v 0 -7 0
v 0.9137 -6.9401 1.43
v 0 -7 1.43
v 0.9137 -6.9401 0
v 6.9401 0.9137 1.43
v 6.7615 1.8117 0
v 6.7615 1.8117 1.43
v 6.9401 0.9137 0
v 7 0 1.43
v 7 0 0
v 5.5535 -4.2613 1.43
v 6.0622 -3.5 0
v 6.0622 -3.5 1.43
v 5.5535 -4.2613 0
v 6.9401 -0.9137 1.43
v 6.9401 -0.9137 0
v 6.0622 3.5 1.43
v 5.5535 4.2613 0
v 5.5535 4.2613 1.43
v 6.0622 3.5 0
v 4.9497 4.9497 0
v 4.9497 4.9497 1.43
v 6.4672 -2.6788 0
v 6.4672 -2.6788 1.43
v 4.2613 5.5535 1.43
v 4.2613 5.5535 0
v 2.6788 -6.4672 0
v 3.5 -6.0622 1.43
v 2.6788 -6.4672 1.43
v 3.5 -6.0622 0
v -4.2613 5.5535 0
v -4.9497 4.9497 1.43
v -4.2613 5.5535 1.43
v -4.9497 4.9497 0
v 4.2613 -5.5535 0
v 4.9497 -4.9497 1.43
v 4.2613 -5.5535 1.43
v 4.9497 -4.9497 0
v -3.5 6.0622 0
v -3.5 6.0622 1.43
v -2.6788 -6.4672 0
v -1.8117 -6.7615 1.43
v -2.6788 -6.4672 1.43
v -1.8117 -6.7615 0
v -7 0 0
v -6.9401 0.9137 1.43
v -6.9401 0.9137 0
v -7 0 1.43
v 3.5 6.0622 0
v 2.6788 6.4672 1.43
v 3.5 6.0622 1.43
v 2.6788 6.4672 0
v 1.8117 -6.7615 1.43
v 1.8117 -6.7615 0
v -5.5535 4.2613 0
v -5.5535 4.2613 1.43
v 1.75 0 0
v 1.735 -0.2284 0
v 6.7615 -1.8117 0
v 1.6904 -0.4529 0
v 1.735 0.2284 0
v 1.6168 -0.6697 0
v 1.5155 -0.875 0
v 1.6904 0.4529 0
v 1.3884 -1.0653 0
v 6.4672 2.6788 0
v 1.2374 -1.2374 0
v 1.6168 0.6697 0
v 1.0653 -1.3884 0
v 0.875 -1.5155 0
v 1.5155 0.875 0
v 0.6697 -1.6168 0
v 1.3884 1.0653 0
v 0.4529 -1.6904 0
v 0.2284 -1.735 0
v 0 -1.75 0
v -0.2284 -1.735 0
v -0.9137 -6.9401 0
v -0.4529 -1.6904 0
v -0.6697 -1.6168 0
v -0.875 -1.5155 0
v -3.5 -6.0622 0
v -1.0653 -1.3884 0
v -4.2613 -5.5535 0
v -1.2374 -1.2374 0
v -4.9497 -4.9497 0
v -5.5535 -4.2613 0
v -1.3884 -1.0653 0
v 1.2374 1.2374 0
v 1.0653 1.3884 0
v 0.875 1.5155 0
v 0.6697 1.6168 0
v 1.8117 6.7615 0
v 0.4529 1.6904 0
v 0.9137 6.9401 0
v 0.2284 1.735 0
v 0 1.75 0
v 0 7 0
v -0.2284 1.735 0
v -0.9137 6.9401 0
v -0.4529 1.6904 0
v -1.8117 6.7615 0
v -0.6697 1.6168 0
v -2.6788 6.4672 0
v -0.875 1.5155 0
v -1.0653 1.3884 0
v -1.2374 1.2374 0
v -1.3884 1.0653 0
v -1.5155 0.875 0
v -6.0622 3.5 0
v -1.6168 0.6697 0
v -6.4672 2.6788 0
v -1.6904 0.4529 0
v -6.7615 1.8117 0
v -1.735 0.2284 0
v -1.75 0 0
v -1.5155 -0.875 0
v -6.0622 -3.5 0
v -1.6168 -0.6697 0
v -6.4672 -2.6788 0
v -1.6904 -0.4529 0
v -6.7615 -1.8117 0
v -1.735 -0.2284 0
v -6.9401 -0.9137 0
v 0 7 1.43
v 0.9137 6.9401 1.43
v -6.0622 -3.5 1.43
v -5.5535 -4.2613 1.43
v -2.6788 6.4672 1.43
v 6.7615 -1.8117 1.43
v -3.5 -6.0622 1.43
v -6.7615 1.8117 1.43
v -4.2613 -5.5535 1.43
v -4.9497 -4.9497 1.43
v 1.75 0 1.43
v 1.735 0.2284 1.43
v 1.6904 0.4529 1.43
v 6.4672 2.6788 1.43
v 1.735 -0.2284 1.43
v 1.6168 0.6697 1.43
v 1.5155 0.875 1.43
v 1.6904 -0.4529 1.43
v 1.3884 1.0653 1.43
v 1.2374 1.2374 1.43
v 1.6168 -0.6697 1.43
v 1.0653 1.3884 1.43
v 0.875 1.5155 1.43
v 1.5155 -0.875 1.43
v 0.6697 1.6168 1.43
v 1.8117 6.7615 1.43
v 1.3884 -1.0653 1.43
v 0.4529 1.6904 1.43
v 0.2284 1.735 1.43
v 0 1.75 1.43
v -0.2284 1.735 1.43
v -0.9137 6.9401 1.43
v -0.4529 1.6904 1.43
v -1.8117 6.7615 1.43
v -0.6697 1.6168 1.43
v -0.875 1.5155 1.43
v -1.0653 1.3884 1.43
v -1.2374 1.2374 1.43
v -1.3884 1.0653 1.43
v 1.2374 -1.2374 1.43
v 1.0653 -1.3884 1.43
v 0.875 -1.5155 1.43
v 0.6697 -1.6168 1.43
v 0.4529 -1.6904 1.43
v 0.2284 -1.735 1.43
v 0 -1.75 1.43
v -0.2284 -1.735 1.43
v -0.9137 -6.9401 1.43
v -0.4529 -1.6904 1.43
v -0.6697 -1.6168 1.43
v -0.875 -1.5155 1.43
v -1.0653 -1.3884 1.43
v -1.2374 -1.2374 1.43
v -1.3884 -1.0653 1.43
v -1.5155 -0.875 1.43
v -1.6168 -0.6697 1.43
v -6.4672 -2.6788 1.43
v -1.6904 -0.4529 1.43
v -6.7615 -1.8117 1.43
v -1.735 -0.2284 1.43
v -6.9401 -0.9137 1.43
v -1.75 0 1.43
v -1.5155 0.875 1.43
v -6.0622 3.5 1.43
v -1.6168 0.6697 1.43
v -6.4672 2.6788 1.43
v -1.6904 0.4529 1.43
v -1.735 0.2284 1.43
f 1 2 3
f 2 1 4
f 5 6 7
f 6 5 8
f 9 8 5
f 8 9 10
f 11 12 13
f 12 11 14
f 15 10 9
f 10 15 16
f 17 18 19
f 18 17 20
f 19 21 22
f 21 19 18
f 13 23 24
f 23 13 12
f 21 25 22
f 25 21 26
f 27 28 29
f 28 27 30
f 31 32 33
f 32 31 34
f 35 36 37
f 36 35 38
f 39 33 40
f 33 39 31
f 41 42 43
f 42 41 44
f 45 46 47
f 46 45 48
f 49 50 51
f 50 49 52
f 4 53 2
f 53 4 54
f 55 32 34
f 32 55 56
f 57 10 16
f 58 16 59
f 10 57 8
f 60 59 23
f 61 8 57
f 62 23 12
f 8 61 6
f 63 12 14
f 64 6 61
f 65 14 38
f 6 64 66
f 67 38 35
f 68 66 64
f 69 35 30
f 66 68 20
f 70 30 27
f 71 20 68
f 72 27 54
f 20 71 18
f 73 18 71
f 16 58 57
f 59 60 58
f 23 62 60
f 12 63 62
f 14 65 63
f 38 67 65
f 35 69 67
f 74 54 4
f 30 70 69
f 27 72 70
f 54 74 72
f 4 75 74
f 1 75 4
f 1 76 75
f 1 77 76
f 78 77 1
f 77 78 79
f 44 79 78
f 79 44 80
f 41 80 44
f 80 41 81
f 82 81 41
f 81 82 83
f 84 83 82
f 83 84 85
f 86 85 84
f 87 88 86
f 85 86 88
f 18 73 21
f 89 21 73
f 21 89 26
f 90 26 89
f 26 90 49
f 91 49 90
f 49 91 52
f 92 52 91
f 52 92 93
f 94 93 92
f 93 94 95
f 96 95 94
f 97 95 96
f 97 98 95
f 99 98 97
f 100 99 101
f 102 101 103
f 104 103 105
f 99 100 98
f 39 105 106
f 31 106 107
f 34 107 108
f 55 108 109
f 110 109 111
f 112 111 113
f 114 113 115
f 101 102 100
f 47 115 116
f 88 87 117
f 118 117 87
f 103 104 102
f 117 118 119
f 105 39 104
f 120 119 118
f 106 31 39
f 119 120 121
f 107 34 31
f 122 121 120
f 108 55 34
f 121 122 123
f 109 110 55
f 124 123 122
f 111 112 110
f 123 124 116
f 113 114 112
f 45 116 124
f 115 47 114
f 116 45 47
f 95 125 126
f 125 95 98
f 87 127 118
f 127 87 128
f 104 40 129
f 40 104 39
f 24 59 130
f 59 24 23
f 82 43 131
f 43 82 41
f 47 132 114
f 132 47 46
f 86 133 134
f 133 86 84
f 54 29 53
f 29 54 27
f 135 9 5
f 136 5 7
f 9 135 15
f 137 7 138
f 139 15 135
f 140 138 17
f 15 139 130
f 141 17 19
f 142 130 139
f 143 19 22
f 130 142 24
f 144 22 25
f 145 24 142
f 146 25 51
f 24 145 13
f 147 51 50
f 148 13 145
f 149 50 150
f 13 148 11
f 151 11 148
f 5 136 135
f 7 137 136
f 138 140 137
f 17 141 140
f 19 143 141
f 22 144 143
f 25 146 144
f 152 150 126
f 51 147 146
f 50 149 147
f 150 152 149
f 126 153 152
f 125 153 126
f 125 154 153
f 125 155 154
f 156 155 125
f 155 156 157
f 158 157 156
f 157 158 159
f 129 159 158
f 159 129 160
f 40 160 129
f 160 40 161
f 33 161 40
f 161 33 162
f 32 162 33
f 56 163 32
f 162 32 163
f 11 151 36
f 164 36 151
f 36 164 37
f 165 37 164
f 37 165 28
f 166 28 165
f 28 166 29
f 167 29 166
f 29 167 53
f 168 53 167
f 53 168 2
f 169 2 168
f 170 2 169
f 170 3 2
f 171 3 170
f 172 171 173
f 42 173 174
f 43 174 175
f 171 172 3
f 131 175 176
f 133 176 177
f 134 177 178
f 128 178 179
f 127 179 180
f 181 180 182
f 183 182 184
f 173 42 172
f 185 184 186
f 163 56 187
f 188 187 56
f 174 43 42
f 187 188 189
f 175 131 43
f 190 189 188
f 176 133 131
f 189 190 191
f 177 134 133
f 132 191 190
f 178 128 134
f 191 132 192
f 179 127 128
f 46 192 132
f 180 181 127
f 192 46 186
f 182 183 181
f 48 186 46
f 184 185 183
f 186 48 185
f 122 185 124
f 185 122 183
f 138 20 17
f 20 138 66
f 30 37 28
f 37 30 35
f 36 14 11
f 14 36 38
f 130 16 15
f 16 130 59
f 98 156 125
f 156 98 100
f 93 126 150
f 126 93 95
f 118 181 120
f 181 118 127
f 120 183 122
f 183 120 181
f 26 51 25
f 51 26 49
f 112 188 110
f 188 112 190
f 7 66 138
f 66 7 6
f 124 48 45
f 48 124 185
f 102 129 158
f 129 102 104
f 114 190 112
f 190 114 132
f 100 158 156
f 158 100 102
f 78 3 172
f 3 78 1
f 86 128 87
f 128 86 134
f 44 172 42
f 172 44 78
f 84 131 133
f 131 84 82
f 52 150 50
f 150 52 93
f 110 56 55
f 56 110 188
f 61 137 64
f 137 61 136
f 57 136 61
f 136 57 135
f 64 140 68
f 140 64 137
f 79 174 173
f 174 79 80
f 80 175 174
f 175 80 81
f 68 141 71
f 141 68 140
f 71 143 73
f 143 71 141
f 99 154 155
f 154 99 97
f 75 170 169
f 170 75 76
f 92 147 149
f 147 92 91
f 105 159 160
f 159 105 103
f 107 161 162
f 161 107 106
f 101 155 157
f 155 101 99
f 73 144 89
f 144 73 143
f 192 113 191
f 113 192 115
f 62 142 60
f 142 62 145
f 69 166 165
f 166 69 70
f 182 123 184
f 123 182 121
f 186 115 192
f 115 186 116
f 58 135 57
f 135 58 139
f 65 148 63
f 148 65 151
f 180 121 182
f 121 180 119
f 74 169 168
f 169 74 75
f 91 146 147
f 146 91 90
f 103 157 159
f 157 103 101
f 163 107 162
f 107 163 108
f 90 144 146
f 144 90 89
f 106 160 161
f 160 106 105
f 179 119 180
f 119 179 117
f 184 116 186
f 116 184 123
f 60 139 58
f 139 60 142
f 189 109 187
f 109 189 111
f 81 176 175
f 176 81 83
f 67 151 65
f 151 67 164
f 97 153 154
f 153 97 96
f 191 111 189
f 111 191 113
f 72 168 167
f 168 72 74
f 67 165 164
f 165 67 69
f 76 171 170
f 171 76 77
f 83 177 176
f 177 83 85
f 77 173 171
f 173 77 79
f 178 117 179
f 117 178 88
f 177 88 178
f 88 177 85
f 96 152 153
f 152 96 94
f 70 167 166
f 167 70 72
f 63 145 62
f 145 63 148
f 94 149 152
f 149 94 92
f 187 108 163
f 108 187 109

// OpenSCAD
// file: parameters.scad
// =============================================================================
// Gen-S Dual-rotor ULTRA-THIN AFPM — WOUND-AWARE parameters (HARD GATE)
// Primary challenger vs Gen-P. Target m2m ≤ 7.0 while magnet↔wound ≥ 0.80.
// =============================================================================

// --- Wire / wind budget (26 AWG, ~1 lb spool ≈ 390 m bare-equiv) --------------
wire_awg            = 26;
wire_od             = 0.45;     // insulated OD mm
turns               = 130;      // +10 vs Gen-P; extra goes radial
fill                = 0.70;
layers_per_face     = 2;        // axial layers proud of EACH flange
wind_build_axial    = layers_per_face * wire_od * fill;   // 0.63 mm
wind_build_radial   = 3 * wire_od * fill;                 // 0.945 mm (extra turns)

// --- Pancake former (bare STL) — thinner web/flange than Gen-P ---------------
coil_id_r           = 24.0;     // larger window vs Gen-P 26–54
coil_od_r           = 56.0;
span_deg            = 26.0;     // 12 stations × 30° pitch
former_web          = 2.2;      // thinner than Gen-P 2.6
flange_t            = 0.8;      // thinner than Gen-P 0.9
wall                = 1.2;
slot_w              = 2.4;
mount_hole          = 3.5;
tab_len             = 7.0;

former_bare_h       = former_web + 2 * flange_t;            // 3.8 mm
coil_envelope_h     = former_bare_h + 2 * wind_build_axial; // 5.06 mm

// --- Running clearance (magnet face → WOUND face) EACH side ------------------
run_clear           = 0.80;     // PASS ≥ 0.80 preferred
gap_spacer_h        = run_clear + wind_build_axial;         // 1.43 mm
m2m                 = coil_envelope_h + 2 * run_clear;      // 6.66 mm (≤7.0 vs Gen-P 7.26)

// --- Mid stator (12 pancakes 3φ; winds proud both faces) ---------------------
coil_stations       = 12;
bay_r_in            = coil_id_r - 2.0 - wind_build_radial;
bay_r_out           = coil_od_r + 2.0 + wind_build_radial;
bay_span            = span_deg + 4.0;
bay_offset          = 2.0;
stator_thick        = former_bare_h;                        // winds proud ±Z
stator_od           = 152.0;
shaft_clear_stator  = 36.0;
coil_mount_r        = 28.0;

// --- Rotors (×2) — 8×Ø20 + 24×Ø5 Halbach each face ---------------------------
large_pocket_d      = 20.3;
small_pocket_d      = 5.3;
pocket_h            = 5.2;
large_n             = 8;
R_large             = 50.0;
R_small_inner       = 38.0;
R_small_mid         = 50.0;
R_small_outer       = 62.0;
carrier_od          = 148.0;
carrier_thick       = 7.5;
hub_h               = 10.0;
hub_od              = 30.0;
rotor_b_offset_deg  = 22.5;

// --- Modular MAX interface (Gen-E family) ------------------------------------
shaft_bore          = 8.35;
bearing_d           = 21.85;
bearing_h           = 7.2;
m3_clear            = 3.5;
bolt_r_inner        = 36.0;
bolt_n_inner        = 6;
flange_bolt_r       = 72.0;
flange_bolt_n       = 6;
brace_r             = 68.0;
brace_d             = 4.3;
brace_n             = 4;

spacer_pad_od       = 14.0;
spacer_pad_id       = m3_clear;
endbell_od          = 152.0;
endbell_thick       = 8.0;
endbell_shaft_clear = 10.0;

$fn = 64;
// main file
// Gen-S gap spacer — h = run_clear + wind_build_axial; print ×12
include <parameters.scad>;
$fn = 48;
difference() {
    cylinder(d=spacer_pad_od, h=gap_spacer_h);
    translate([0, 0, -0.1]) cylinder(d=spacer_pad_id, h=gap_spacer_h + 0.2);
}
